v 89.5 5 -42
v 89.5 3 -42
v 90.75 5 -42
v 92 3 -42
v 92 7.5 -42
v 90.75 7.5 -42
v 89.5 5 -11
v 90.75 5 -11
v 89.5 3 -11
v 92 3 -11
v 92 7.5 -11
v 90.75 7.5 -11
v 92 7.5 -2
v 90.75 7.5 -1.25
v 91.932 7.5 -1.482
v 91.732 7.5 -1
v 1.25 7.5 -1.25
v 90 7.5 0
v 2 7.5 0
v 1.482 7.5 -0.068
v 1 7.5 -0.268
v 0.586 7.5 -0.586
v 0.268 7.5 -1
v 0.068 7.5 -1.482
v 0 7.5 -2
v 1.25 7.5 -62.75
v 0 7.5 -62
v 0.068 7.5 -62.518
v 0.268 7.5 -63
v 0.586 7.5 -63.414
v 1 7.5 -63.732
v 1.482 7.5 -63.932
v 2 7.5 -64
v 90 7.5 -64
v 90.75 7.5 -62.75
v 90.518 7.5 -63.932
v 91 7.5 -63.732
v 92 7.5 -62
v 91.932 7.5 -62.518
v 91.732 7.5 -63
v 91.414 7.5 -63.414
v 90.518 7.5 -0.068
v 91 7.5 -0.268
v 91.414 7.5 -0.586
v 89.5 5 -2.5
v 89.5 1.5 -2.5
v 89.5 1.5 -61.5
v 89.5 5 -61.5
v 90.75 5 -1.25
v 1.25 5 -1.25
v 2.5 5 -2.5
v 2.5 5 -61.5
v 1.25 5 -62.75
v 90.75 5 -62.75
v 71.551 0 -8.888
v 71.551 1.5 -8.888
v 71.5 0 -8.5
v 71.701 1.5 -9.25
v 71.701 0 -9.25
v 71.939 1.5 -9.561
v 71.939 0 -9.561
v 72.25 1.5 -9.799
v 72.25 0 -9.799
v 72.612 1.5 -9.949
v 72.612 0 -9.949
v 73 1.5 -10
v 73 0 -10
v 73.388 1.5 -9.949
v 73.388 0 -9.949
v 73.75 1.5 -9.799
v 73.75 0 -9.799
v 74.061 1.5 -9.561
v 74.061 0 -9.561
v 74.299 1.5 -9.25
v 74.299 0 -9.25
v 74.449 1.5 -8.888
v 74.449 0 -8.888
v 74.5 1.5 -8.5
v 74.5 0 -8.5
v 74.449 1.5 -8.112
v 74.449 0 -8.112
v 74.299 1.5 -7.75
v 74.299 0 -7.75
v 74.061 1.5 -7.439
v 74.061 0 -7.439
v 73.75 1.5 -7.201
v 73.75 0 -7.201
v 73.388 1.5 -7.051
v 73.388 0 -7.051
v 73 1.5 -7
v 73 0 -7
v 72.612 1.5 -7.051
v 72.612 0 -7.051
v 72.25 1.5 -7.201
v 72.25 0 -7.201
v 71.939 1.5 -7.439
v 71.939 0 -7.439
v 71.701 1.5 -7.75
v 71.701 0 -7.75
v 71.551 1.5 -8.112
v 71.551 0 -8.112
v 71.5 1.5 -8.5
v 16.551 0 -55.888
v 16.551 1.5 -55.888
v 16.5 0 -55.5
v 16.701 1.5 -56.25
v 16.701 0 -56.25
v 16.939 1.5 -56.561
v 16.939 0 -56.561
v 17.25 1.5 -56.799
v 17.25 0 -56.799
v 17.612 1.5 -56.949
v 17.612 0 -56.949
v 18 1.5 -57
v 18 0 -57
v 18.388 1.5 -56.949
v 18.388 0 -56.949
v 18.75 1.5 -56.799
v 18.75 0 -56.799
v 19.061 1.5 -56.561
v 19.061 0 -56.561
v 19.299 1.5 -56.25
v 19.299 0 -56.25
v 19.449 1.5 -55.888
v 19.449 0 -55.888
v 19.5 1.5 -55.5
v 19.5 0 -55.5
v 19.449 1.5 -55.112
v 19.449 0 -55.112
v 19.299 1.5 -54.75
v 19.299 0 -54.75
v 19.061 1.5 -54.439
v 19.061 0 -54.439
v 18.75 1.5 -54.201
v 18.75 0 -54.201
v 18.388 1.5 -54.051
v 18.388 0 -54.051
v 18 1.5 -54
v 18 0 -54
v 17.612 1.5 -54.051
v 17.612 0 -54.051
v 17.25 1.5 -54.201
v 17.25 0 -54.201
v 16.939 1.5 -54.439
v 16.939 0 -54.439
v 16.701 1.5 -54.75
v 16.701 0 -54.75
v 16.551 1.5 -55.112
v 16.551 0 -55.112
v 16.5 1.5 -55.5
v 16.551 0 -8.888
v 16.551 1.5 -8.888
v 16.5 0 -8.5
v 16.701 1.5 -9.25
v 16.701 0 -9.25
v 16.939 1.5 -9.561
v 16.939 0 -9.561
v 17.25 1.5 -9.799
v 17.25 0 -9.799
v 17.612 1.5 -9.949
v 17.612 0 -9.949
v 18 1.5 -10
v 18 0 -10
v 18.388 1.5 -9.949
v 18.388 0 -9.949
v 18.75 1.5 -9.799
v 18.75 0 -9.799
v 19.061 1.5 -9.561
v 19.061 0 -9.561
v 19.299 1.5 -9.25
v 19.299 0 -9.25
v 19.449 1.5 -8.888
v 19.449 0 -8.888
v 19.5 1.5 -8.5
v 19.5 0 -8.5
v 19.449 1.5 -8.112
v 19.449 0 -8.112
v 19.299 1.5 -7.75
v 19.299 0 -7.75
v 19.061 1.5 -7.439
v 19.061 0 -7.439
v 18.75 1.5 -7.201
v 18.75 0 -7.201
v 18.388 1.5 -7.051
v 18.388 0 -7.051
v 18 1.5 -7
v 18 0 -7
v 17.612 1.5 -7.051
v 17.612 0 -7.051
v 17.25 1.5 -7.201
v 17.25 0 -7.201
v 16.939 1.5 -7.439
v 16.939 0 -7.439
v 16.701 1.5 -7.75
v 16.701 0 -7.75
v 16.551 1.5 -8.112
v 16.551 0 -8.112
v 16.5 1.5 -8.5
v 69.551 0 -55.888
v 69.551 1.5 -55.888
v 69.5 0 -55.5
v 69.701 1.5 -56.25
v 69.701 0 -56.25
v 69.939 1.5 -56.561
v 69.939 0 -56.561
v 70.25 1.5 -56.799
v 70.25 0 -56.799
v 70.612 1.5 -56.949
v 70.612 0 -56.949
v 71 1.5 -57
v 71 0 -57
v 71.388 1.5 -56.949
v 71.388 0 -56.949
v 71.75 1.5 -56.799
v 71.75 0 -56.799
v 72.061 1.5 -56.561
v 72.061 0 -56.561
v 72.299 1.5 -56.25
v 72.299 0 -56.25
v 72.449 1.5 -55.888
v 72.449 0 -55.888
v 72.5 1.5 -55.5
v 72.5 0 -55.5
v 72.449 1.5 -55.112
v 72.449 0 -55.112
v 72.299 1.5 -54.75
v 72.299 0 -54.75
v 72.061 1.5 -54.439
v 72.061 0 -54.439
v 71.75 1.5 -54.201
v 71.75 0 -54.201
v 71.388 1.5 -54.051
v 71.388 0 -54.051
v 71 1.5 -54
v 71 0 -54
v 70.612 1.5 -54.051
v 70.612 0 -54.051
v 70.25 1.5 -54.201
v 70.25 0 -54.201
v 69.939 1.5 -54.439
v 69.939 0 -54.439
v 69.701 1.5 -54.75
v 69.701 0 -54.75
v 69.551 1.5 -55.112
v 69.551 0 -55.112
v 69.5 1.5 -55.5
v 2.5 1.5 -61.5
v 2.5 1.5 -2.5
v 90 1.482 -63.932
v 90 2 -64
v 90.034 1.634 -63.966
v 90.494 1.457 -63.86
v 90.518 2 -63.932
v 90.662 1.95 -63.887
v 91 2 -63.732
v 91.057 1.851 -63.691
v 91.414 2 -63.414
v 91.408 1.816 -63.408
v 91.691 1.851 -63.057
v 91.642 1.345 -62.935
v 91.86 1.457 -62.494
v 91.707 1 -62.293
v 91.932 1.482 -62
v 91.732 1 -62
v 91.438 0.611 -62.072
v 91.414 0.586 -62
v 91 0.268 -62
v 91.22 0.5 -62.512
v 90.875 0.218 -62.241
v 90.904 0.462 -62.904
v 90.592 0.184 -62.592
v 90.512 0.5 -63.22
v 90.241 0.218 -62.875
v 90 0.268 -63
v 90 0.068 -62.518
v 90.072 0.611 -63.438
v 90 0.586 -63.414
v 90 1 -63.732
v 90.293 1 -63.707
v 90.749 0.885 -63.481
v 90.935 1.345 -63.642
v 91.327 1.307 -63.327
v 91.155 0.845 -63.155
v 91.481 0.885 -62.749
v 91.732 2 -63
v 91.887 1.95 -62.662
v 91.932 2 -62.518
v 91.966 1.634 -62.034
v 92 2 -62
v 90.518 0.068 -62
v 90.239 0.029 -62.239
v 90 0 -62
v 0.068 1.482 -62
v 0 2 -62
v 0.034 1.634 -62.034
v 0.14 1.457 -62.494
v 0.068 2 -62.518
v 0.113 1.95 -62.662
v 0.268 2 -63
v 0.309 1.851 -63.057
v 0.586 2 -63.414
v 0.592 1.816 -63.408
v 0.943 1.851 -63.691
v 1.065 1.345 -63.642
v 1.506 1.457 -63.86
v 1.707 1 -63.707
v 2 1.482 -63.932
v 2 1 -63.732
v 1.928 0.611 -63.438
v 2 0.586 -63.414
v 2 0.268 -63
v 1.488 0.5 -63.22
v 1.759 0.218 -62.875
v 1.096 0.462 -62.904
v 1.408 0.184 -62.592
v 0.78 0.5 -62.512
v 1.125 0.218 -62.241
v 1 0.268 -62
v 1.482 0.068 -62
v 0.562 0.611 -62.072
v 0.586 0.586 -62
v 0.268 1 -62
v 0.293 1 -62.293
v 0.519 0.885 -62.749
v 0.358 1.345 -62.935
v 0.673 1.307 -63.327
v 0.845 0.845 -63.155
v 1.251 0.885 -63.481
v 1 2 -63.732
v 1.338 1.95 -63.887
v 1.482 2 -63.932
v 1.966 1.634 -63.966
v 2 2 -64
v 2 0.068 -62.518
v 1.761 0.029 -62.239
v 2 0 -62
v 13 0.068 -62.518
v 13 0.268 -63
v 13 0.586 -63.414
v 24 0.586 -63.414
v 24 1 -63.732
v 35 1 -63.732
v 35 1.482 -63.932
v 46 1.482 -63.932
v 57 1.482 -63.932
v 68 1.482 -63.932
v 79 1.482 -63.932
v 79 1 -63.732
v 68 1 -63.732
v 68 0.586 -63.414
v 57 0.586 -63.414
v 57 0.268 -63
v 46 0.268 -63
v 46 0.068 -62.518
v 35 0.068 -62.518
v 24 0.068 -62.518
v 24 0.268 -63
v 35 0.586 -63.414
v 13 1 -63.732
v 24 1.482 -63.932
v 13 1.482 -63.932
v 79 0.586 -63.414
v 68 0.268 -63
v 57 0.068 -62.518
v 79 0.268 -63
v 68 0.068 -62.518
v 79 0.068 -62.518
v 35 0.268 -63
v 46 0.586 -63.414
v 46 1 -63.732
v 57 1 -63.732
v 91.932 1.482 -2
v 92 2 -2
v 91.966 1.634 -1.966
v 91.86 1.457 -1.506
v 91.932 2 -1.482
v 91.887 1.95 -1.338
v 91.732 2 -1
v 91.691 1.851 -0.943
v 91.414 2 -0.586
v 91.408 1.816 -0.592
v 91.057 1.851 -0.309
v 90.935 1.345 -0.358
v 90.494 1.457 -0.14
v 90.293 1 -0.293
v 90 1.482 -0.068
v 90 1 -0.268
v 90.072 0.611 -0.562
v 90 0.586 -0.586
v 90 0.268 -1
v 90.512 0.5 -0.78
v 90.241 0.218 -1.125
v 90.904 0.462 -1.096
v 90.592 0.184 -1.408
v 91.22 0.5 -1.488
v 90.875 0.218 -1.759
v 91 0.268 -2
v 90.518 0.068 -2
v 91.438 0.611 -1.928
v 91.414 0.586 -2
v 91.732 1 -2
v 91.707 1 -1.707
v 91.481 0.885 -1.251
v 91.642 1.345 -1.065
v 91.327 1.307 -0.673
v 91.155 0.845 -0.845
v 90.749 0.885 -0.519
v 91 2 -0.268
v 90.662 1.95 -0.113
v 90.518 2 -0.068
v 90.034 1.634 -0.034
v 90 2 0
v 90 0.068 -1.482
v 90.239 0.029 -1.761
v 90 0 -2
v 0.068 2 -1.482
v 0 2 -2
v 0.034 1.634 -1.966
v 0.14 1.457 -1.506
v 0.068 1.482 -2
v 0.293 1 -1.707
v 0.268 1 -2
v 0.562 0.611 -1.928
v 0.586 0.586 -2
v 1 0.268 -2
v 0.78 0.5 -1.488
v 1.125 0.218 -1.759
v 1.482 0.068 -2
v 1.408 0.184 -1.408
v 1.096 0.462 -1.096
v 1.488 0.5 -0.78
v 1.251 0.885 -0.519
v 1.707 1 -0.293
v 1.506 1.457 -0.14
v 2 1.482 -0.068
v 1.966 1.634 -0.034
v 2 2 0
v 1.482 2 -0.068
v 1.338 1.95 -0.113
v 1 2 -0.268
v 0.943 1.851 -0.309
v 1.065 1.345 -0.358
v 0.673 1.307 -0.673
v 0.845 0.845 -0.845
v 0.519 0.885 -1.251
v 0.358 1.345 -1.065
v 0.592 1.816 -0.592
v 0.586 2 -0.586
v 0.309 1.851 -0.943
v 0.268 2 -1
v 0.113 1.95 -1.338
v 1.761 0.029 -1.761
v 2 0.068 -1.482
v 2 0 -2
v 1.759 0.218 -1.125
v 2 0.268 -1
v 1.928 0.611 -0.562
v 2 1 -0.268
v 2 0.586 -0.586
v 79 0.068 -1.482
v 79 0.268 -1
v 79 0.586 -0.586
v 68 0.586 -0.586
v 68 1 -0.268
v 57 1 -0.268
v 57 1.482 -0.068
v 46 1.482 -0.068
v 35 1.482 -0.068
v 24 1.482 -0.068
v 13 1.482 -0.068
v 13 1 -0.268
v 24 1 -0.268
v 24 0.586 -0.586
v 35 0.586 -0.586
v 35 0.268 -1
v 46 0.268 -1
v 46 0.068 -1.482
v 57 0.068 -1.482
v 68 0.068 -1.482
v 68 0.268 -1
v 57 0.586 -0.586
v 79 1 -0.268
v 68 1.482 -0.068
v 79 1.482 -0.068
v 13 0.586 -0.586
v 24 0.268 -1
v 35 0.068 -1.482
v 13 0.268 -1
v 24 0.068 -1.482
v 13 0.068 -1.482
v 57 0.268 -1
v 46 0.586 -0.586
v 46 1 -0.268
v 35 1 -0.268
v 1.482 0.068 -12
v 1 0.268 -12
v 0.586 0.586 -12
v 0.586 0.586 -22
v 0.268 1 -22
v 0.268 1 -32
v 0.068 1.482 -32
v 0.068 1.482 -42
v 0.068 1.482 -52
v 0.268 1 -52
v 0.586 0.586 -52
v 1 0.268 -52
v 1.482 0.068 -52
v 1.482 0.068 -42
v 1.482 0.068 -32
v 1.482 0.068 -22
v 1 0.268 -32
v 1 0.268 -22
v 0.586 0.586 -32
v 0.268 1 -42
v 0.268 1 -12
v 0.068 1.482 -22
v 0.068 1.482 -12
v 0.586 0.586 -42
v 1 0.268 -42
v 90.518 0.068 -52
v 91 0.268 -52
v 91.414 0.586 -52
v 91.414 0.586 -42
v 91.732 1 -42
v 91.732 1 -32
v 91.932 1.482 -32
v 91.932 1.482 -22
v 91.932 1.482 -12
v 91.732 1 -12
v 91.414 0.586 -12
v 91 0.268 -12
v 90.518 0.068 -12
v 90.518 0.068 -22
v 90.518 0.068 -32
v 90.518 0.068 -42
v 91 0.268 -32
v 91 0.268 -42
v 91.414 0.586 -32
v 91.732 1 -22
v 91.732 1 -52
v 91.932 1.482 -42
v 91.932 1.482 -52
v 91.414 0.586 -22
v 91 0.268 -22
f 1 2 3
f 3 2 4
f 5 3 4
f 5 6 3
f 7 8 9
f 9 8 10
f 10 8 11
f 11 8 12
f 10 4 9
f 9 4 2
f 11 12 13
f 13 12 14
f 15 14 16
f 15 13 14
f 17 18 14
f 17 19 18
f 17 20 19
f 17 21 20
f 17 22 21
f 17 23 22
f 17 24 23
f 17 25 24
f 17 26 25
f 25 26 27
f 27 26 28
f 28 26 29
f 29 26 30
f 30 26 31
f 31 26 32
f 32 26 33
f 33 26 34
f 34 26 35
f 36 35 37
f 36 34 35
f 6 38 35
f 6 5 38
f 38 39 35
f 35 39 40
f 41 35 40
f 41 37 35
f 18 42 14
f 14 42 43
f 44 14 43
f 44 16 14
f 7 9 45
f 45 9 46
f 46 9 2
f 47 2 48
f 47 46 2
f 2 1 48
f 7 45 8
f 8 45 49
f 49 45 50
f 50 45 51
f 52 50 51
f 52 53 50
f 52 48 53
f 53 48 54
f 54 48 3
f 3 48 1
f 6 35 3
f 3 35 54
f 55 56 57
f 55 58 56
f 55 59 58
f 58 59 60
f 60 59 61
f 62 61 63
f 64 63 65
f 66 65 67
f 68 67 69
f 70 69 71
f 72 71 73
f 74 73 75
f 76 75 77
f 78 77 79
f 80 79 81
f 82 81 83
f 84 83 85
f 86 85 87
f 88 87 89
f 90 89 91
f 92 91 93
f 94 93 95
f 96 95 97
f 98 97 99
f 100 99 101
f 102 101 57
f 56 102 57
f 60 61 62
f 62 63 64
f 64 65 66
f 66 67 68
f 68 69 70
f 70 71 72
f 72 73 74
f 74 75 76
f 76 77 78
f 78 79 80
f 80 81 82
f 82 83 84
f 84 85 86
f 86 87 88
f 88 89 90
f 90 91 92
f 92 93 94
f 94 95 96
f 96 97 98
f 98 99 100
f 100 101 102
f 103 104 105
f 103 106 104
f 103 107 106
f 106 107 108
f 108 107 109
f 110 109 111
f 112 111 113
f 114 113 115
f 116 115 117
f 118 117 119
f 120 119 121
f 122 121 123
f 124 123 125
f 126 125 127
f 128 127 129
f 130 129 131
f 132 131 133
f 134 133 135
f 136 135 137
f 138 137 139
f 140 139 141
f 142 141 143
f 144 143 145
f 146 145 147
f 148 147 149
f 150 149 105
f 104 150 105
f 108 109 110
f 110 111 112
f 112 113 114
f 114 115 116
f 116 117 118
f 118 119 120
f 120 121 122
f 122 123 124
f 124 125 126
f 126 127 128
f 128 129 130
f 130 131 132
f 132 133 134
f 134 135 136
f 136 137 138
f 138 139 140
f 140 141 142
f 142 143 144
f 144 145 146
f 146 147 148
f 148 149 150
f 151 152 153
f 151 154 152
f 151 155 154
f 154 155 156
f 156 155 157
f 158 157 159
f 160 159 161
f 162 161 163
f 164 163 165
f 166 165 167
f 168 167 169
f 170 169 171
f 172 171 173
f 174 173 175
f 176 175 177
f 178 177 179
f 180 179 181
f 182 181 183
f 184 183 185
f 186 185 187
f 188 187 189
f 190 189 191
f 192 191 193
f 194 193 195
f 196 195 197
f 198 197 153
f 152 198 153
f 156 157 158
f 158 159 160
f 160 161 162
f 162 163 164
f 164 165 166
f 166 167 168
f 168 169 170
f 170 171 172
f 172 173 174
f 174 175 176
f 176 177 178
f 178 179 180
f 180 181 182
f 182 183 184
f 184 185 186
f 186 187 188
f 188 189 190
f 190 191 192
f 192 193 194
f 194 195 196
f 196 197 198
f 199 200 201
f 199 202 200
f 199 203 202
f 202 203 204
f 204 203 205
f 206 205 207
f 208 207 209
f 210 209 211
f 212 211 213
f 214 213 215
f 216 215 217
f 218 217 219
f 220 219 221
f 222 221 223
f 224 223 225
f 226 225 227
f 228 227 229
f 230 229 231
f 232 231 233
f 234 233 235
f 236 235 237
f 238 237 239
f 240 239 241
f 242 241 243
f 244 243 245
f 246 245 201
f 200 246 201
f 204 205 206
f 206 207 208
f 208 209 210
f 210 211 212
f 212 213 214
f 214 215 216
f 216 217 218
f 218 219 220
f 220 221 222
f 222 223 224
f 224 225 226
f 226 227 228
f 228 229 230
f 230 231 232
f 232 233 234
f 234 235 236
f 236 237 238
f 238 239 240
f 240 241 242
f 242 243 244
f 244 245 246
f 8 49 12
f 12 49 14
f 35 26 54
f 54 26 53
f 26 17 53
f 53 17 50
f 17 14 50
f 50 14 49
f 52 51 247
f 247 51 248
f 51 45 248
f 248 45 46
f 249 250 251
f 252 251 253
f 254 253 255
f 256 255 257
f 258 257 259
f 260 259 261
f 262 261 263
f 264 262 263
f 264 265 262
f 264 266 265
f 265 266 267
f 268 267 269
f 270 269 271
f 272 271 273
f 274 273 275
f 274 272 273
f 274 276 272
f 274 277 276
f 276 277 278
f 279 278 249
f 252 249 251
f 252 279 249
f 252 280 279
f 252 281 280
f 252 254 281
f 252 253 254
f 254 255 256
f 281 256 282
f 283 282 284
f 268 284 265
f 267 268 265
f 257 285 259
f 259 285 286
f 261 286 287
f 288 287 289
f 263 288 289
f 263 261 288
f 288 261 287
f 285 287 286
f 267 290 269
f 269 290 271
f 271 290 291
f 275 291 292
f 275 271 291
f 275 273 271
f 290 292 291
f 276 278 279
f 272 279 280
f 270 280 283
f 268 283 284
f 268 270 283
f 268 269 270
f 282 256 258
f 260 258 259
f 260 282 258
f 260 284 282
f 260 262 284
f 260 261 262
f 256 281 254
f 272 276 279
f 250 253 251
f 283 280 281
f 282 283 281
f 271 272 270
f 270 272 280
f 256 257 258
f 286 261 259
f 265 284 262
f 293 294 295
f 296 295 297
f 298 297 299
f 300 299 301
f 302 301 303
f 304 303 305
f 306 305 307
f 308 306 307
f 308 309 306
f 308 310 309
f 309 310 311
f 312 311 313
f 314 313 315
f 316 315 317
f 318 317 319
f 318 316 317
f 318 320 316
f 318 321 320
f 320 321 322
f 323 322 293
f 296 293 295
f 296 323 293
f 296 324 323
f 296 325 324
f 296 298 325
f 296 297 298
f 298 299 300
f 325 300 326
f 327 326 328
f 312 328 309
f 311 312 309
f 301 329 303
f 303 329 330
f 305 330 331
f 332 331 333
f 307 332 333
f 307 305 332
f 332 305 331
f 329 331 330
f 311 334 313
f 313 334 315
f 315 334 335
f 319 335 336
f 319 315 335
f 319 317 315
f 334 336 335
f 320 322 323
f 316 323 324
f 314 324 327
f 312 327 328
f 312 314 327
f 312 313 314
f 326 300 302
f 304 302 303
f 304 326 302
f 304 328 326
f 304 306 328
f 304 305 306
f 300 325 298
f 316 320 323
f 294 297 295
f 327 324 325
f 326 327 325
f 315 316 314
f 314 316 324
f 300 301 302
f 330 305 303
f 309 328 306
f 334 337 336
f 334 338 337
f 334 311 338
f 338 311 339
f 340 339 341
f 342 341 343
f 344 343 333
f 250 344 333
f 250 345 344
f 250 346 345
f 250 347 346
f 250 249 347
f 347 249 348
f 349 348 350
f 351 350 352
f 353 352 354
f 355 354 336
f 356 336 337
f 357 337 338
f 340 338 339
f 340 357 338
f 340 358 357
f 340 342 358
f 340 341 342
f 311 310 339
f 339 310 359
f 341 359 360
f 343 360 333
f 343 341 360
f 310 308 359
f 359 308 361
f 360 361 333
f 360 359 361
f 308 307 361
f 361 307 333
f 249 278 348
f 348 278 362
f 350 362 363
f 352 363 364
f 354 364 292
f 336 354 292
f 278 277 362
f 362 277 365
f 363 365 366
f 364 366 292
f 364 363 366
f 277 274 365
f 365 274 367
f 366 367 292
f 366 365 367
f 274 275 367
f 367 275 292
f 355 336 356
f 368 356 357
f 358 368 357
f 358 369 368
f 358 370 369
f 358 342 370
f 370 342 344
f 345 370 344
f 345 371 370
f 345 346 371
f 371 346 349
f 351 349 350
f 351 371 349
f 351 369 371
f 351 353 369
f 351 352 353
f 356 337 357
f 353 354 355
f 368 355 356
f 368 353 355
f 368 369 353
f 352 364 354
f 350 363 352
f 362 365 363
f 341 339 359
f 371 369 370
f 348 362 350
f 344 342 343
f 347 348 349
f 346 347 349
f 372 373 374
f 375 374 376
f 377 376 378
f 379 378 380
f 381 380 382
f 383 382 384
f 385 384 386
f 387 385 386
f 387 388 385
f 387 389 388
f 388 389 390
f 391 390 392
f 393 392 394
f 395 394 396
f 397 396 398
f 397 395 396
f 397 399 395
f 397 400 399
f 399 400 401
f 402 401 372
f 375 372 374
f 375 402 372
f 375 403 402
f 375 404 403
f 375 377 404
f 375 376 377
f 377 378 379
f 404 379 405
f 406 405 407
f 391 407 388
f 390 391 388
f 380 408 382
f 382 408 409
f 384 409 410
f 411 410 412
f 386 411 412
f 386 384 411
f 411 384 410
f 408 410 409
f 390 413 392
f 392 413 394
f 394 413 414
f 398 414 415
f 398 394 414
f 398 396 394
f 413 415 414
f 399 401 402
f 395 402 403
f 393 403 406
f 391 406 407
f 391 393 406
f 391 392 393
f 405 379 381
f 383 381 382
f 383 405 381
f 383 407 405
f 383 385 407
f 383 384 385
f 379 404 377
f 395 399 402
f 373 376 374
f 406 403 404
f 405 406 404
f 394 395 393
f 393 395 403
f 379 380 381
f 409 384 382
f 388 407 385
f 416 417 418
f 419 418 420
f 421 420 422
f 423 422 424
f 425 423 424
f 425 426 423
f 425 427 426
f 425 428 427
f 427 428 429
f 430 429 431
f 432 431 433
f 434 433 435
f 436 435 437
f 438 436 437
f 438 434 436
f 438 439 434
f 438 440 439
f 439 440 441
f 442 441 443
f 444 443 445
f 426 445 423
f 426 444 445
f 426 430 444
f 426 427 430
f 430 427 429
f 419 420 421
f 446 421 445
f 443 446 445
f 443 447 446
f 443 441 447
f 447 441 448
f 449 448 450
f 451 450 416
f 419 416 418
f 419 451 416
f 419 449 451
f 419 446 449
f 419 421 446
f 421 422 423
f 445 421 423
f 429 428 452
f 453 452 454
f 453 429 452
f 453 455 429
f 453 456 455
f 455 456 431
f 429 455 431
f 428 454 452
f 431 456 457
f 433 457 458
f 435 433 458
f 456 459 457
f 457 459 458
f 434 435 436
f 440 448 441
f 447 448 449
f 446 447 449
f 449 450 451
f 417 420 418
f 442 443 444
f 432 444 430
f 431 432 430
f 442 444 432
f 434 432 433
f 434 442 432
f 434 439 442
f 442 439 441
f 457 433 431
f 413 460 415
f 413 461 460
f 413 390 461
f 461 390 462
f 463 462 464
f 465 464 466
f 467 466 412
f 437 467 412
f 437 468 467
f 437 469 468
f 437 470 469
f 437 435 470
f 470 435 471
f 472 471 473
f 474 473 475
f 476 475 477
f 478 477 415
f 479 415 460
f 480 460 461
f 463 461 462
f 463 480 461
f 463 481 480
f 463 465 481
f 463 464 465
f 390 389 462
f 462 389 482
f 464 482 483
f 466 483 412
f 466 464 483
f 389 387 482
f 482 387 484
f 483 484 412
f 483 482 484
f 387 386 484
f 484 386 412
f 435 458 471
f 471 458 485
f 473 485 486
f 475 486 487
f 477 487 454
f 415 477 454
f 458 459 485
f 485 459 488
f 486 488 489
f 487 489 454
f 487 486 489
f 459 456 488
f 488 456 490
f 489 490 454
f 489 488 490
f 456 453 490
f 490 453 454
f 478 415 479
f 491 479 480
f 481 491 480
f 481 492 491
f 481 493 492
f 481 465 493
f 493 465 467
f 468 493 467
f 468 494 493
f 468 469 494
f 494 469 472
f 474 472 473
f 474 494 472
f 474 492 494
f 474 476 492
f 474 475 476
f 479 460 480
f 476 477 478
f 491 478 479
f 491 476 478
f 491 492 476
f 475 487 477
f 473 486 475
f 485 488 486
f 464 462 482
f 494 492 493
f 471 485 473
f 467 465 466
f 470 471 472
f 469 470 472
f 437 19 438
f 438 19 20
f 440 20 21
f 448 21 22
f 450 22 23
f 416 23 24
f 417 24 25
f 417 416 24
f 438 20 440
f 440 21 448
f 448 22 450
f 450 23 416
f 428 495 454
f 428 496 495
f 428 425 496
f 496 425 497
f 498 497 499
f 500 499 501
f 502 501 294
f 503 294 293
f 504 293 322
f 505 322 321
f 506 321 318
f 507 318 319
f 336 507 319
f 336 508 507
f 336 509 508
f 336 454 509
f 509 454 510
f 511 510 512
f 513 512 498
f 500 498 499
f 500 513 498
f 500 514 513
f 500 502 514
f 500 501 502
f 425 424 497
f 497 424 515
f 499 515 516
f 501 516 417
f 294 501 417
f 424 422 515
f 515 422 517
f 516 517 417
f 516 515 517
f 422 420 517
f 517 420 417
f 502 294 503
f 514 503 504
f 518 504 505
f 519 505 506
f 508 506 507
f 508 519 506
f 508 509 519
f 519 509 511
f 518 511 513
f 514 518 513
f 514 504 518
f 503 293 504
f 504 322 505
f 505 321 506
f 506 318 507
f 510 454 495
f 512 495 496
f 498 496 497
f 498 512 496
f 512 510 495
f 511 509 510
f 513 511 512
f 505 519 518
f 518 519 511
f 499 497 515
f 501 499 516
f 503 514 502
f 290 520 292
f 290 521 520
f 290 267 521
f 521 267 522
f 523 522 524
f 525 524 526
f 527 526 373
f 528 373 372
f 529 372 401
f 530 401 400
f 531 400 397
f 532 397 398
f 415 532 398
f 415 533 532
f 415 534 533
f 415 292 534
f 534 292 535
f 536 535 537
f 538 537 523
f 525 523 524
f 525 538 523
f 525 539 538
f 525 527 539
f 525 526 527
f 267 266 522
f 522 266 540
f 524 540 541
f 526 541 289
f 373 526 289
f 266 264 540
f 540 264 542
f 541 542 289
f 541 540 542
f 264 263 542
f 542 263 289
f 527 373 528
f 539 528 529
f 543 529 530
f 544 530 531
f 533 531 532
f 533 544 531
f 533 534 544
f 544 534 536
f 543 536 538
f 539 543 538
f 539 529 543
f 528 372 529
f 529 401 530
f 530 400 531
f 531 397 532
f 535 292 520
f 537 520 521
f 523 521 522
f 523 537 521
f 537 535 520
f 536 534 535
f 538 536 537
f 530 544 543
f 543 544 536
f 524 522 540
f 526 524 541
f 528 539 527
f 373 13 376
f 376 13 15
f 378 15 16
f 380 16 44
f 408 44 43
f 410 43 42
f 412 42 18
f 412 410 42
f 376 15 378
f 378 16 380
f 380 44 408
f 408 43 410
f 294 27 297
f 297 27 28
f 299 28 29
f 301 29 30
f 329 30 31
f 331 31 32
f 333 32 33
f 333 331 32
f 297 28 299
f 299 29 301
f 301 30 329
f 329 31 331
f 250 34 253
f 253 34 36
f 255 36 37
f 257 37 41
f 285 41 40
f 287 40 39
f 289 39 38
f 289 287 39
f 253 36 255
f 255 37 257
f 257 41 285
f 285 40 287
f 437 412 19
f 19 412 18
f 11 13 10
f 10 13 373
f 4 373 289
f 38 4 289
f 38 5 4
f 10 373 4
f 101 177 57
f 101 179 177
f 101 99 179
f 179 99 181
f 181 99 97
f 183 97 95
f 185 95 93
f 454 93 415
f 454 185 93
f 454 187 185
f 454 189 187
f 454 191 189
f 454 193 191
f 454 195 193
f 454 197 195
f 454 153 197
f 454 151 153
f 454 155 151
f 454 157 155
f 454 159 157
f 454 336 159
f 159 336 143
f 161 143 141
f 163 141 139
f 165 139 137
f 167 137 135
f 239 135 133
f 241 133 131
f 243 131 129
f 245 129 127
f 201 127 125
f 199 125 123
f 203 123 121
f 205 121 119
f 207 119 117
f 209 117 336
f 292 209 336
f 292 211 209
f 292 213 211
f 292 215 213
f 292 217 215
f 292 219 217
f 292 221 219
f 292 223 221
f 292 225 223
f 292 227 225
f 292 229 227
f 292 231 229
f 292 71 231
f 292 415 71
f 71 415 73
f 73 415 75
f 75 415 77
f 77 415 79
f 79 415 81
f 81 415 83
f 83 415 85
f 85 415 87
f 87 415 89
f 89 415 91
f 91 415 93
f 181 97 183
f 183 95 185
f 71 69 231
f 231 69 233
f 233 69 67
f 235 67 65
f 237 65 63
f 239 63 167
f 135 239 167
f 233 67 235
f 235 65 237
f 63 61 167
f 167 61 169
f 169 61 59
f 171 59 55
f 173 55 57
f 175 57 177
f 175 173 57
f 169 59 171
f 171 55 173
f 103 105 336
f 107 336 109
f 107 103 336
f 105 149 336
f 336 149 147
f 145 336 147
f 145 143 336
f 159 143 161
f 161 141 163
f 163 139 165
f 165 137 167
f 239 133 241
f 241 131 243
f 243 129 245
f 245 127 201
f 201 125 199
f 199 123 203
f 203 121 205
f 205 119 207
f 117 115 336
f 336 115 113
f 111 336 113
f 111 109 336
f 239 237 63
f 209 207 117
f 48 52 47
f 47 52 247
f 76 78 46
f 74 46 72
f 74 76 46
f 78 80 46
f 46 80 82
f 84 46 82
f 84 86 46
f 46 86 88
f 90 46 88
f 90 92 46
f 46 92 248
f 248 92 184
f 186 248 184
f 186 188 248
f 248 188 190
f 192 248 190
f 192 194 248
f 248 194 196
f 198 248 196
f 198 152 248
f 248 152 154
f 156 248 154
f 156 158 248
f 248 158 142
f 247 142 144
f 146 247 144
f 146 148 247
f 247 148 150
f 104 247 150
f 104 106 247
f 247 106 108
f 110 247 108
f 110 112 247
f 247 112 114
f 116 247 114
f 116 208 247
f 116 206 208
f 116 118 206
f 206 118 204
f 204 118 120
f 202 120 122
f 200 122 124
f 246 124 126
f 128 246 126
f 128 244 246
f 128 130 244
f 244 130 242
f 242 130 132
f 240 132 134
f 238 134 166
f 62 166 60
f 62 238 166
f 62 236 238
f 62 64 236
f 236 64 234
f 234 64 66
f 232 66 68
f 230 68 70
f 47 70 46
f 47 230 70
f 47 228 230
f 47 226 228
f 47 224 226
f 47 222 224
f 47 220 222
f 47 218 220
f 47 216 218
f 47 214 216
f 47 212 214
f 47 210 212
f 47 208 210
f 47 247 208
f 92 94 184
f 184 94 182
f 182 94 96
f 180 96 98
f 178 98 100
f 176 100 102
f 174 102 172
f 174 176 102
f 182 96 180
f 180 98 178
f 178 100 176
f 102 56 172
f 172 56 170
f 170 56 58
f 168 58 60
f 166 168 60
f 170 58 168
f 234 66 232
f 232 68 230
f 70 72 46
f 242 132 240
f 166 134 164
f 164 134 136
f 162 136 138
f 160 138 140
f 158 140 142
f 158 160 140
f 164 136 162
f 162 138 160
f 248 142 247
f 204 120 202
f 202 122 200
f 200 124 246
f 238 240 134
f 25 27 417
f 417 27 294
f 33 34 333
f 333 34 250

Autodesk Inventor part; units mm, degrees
ref_plane "YZ Plane" through (0, 0, 0) normal (1, 0, 0) x (0, 1, 0)
ref_plane "XZ Plane" through (0, 0, 0) normal (0, 1, 0) x (-1, 0, 0)
ref_plane "XY Plane" through (0, 0, 0) normal (0, 0, 1) x (1, 0, 0)
sketch "Sketch1" plane through (0, 0, 0) normal (0, 1, 0) x (-1, 0, 0)
  line L0 (0, 0) -> (-92, 0)
  line L1 (-92, 0) -> (-92, -64)
  line L2 (-92, -64) -> (0, -64)
  line L3 (0, -64) -> (0, 0)
  dimension "d0" = 64
  dimension "d1" = 92
extrude "Extrusion1" add sketch "Sketch1" along normal blind 7.5
sketch "Sketch2" plane through (0, 7.5, 0) normal (0, 1, 0) x (1, 0, 0)
  line L0 (2.5, 2.5) -> (89.5, 2.5)
  line L1 (89.5, 2.5) -> (89.5, 61.5)
  line L2 (89.5, 61.5) -> (2.5, 61.5)
  line L3 (2.5, 61.5) -> (2.5, 2.5)
  line L4 (0, 64) -> (0, 0) projected
  line L5 (0, 0) -> (92, 0) projected
  line L6 (92, 0) -> (92, 64) projected
  line L7 (92, 64) -> (0, 64) projected
  dimension "d4" = 2.5
  dimension "d5" = 2.5
  dimension "d6" = 2.5
  dimension "d7" = 2.5
extrude "Extrusion2" cut sketch "Sketch2" against normal blind 6 contours L3 L2 L1 L0
fillet "Fillet1" radius 2 8 edges at (0, 3.75, 0) (46, 0, 0) (92, 3.75, 0) (92, 0, -32) (92, 3.75, -64) (46, 0, -64) (0, 3.75, -64) (0, 0, -32)
sketch "Sketch3" plane through (0, 7.5, 0) normal (0, 1, 0) x (1, 0, 0)
  line L0 (1.25, 1.25) -> (90.75, 1.25)
  line L1 (90.75, 1.25) -> (90.75, 62.75)
  line L2 (90.75, 62.75) -> (1.25, 62.75)
  line L3 (1.25, 62.75) -> (1.25, 1.25)
  line L4 (0, 62) -> (0, 2) projected
  line L5 (2, 0) -> (90, 0) projected
  line L6 (92, 2) -> (92, 62) projected
  line L7 (90, 64) -> (2, 64) projected
  point P0 (0, 0)
  dimension "d11" = 1.25
  dimension "d12" = 1.25
  dimension "d13" = 1.25
  dimension "d14" = 1.25
extrude "Extrusion3" cut sketch "Sketch3" against normal blind 2.5
sketch "Sketch4" plane through (0, 1.5, 0) normal (0, 1, 0) x (1, 0, 0)
  line L0 (5, 5) -> (87, 5)
  line L1 (87, 5) -> (87, 59) construction
  line L2 (87, 59) -> (5, 59)
  line L3 (5, 59) -> (5, 5)
  line L4 (2.5, 2.5) -> (2.5, 61.5) projected
  line L5 (89.5, 2.5) -> (2.5, 2.5) projected
  line L6 (2.5, 61.5) -> (89.5, 61.5) projected
  line L7 (89.5, 61.5) -> (89.5, 2.5) projected
  line L8 (18, 55.5) -> (73, 55.5)
  line L9 (73, 55.5) -> (73, 8.5)
  line L10 (73, 8.5) -> (18, 8.5)
  line L11 (18, 8.5) -> (18, 55.5)
  line L12 (71, 55.5) -> (71, 8.5)
  point P0 (0, 0)
  dimension "d17" = 2.5
  dimension "d18" = 2.5
  dimension "d19" = 2.5
  dimension "d20" = 2.5
  dimension "d21" = 14
  dimension "d22" = 13
  dimension "d23" = 54
  dimension "d24" = 82
  dimension "d25" = 3.5
  dimension "d26" = 3.5
  dimension "d44" = 16
  dimension "d45" = 18.5
  dimension "d46" = 16.5
hole "Hole1" at (18, 1.5, -55.5) at (18, 1.5, -8.5) at (73, 1.5, -8.5) at (71, 1.5, -55.5) direction (0, -1, 0) diameter 3 end through all
sketch "Sketch5" plane through (92, 2, -2) normal (1, 0, 0) x (0, 0, -1)
  line L0 (9, 5.5) -> (40, 5.5)
  line L1 (40, 5.5) -> (40, 1)
  line L2 (40, 1) -> (9, 1)
  line L3 (9, 1) -> (9, 5.5)
  line L4 (0, 5.5) -> (60, 5.5) projected
  line L5 (0, 0) -> (0, 5.5) projected
  line L6 (60, 5.5) -> (60, 0) projected
  line L7 (60, 0) -> (0, 0) projected
  line L8 (59.5, -0.5) -> (0.5, -0.5) projected
  point P0 (-2, -2)
  dimension "d34" = 0
  dimension "d35" = 9
  dimension "d36" = 20
  dimension "d37" = 4.5
  dimension "d41" = 5.5
  dimension "d42" = 1
  dimension "d43" = 1.5
extrude "Extrusion4" cut sketch "Sketch5" against normal blind 2.5 contours L0 L1 L2 L3
properties part number "hubtest1_3"
